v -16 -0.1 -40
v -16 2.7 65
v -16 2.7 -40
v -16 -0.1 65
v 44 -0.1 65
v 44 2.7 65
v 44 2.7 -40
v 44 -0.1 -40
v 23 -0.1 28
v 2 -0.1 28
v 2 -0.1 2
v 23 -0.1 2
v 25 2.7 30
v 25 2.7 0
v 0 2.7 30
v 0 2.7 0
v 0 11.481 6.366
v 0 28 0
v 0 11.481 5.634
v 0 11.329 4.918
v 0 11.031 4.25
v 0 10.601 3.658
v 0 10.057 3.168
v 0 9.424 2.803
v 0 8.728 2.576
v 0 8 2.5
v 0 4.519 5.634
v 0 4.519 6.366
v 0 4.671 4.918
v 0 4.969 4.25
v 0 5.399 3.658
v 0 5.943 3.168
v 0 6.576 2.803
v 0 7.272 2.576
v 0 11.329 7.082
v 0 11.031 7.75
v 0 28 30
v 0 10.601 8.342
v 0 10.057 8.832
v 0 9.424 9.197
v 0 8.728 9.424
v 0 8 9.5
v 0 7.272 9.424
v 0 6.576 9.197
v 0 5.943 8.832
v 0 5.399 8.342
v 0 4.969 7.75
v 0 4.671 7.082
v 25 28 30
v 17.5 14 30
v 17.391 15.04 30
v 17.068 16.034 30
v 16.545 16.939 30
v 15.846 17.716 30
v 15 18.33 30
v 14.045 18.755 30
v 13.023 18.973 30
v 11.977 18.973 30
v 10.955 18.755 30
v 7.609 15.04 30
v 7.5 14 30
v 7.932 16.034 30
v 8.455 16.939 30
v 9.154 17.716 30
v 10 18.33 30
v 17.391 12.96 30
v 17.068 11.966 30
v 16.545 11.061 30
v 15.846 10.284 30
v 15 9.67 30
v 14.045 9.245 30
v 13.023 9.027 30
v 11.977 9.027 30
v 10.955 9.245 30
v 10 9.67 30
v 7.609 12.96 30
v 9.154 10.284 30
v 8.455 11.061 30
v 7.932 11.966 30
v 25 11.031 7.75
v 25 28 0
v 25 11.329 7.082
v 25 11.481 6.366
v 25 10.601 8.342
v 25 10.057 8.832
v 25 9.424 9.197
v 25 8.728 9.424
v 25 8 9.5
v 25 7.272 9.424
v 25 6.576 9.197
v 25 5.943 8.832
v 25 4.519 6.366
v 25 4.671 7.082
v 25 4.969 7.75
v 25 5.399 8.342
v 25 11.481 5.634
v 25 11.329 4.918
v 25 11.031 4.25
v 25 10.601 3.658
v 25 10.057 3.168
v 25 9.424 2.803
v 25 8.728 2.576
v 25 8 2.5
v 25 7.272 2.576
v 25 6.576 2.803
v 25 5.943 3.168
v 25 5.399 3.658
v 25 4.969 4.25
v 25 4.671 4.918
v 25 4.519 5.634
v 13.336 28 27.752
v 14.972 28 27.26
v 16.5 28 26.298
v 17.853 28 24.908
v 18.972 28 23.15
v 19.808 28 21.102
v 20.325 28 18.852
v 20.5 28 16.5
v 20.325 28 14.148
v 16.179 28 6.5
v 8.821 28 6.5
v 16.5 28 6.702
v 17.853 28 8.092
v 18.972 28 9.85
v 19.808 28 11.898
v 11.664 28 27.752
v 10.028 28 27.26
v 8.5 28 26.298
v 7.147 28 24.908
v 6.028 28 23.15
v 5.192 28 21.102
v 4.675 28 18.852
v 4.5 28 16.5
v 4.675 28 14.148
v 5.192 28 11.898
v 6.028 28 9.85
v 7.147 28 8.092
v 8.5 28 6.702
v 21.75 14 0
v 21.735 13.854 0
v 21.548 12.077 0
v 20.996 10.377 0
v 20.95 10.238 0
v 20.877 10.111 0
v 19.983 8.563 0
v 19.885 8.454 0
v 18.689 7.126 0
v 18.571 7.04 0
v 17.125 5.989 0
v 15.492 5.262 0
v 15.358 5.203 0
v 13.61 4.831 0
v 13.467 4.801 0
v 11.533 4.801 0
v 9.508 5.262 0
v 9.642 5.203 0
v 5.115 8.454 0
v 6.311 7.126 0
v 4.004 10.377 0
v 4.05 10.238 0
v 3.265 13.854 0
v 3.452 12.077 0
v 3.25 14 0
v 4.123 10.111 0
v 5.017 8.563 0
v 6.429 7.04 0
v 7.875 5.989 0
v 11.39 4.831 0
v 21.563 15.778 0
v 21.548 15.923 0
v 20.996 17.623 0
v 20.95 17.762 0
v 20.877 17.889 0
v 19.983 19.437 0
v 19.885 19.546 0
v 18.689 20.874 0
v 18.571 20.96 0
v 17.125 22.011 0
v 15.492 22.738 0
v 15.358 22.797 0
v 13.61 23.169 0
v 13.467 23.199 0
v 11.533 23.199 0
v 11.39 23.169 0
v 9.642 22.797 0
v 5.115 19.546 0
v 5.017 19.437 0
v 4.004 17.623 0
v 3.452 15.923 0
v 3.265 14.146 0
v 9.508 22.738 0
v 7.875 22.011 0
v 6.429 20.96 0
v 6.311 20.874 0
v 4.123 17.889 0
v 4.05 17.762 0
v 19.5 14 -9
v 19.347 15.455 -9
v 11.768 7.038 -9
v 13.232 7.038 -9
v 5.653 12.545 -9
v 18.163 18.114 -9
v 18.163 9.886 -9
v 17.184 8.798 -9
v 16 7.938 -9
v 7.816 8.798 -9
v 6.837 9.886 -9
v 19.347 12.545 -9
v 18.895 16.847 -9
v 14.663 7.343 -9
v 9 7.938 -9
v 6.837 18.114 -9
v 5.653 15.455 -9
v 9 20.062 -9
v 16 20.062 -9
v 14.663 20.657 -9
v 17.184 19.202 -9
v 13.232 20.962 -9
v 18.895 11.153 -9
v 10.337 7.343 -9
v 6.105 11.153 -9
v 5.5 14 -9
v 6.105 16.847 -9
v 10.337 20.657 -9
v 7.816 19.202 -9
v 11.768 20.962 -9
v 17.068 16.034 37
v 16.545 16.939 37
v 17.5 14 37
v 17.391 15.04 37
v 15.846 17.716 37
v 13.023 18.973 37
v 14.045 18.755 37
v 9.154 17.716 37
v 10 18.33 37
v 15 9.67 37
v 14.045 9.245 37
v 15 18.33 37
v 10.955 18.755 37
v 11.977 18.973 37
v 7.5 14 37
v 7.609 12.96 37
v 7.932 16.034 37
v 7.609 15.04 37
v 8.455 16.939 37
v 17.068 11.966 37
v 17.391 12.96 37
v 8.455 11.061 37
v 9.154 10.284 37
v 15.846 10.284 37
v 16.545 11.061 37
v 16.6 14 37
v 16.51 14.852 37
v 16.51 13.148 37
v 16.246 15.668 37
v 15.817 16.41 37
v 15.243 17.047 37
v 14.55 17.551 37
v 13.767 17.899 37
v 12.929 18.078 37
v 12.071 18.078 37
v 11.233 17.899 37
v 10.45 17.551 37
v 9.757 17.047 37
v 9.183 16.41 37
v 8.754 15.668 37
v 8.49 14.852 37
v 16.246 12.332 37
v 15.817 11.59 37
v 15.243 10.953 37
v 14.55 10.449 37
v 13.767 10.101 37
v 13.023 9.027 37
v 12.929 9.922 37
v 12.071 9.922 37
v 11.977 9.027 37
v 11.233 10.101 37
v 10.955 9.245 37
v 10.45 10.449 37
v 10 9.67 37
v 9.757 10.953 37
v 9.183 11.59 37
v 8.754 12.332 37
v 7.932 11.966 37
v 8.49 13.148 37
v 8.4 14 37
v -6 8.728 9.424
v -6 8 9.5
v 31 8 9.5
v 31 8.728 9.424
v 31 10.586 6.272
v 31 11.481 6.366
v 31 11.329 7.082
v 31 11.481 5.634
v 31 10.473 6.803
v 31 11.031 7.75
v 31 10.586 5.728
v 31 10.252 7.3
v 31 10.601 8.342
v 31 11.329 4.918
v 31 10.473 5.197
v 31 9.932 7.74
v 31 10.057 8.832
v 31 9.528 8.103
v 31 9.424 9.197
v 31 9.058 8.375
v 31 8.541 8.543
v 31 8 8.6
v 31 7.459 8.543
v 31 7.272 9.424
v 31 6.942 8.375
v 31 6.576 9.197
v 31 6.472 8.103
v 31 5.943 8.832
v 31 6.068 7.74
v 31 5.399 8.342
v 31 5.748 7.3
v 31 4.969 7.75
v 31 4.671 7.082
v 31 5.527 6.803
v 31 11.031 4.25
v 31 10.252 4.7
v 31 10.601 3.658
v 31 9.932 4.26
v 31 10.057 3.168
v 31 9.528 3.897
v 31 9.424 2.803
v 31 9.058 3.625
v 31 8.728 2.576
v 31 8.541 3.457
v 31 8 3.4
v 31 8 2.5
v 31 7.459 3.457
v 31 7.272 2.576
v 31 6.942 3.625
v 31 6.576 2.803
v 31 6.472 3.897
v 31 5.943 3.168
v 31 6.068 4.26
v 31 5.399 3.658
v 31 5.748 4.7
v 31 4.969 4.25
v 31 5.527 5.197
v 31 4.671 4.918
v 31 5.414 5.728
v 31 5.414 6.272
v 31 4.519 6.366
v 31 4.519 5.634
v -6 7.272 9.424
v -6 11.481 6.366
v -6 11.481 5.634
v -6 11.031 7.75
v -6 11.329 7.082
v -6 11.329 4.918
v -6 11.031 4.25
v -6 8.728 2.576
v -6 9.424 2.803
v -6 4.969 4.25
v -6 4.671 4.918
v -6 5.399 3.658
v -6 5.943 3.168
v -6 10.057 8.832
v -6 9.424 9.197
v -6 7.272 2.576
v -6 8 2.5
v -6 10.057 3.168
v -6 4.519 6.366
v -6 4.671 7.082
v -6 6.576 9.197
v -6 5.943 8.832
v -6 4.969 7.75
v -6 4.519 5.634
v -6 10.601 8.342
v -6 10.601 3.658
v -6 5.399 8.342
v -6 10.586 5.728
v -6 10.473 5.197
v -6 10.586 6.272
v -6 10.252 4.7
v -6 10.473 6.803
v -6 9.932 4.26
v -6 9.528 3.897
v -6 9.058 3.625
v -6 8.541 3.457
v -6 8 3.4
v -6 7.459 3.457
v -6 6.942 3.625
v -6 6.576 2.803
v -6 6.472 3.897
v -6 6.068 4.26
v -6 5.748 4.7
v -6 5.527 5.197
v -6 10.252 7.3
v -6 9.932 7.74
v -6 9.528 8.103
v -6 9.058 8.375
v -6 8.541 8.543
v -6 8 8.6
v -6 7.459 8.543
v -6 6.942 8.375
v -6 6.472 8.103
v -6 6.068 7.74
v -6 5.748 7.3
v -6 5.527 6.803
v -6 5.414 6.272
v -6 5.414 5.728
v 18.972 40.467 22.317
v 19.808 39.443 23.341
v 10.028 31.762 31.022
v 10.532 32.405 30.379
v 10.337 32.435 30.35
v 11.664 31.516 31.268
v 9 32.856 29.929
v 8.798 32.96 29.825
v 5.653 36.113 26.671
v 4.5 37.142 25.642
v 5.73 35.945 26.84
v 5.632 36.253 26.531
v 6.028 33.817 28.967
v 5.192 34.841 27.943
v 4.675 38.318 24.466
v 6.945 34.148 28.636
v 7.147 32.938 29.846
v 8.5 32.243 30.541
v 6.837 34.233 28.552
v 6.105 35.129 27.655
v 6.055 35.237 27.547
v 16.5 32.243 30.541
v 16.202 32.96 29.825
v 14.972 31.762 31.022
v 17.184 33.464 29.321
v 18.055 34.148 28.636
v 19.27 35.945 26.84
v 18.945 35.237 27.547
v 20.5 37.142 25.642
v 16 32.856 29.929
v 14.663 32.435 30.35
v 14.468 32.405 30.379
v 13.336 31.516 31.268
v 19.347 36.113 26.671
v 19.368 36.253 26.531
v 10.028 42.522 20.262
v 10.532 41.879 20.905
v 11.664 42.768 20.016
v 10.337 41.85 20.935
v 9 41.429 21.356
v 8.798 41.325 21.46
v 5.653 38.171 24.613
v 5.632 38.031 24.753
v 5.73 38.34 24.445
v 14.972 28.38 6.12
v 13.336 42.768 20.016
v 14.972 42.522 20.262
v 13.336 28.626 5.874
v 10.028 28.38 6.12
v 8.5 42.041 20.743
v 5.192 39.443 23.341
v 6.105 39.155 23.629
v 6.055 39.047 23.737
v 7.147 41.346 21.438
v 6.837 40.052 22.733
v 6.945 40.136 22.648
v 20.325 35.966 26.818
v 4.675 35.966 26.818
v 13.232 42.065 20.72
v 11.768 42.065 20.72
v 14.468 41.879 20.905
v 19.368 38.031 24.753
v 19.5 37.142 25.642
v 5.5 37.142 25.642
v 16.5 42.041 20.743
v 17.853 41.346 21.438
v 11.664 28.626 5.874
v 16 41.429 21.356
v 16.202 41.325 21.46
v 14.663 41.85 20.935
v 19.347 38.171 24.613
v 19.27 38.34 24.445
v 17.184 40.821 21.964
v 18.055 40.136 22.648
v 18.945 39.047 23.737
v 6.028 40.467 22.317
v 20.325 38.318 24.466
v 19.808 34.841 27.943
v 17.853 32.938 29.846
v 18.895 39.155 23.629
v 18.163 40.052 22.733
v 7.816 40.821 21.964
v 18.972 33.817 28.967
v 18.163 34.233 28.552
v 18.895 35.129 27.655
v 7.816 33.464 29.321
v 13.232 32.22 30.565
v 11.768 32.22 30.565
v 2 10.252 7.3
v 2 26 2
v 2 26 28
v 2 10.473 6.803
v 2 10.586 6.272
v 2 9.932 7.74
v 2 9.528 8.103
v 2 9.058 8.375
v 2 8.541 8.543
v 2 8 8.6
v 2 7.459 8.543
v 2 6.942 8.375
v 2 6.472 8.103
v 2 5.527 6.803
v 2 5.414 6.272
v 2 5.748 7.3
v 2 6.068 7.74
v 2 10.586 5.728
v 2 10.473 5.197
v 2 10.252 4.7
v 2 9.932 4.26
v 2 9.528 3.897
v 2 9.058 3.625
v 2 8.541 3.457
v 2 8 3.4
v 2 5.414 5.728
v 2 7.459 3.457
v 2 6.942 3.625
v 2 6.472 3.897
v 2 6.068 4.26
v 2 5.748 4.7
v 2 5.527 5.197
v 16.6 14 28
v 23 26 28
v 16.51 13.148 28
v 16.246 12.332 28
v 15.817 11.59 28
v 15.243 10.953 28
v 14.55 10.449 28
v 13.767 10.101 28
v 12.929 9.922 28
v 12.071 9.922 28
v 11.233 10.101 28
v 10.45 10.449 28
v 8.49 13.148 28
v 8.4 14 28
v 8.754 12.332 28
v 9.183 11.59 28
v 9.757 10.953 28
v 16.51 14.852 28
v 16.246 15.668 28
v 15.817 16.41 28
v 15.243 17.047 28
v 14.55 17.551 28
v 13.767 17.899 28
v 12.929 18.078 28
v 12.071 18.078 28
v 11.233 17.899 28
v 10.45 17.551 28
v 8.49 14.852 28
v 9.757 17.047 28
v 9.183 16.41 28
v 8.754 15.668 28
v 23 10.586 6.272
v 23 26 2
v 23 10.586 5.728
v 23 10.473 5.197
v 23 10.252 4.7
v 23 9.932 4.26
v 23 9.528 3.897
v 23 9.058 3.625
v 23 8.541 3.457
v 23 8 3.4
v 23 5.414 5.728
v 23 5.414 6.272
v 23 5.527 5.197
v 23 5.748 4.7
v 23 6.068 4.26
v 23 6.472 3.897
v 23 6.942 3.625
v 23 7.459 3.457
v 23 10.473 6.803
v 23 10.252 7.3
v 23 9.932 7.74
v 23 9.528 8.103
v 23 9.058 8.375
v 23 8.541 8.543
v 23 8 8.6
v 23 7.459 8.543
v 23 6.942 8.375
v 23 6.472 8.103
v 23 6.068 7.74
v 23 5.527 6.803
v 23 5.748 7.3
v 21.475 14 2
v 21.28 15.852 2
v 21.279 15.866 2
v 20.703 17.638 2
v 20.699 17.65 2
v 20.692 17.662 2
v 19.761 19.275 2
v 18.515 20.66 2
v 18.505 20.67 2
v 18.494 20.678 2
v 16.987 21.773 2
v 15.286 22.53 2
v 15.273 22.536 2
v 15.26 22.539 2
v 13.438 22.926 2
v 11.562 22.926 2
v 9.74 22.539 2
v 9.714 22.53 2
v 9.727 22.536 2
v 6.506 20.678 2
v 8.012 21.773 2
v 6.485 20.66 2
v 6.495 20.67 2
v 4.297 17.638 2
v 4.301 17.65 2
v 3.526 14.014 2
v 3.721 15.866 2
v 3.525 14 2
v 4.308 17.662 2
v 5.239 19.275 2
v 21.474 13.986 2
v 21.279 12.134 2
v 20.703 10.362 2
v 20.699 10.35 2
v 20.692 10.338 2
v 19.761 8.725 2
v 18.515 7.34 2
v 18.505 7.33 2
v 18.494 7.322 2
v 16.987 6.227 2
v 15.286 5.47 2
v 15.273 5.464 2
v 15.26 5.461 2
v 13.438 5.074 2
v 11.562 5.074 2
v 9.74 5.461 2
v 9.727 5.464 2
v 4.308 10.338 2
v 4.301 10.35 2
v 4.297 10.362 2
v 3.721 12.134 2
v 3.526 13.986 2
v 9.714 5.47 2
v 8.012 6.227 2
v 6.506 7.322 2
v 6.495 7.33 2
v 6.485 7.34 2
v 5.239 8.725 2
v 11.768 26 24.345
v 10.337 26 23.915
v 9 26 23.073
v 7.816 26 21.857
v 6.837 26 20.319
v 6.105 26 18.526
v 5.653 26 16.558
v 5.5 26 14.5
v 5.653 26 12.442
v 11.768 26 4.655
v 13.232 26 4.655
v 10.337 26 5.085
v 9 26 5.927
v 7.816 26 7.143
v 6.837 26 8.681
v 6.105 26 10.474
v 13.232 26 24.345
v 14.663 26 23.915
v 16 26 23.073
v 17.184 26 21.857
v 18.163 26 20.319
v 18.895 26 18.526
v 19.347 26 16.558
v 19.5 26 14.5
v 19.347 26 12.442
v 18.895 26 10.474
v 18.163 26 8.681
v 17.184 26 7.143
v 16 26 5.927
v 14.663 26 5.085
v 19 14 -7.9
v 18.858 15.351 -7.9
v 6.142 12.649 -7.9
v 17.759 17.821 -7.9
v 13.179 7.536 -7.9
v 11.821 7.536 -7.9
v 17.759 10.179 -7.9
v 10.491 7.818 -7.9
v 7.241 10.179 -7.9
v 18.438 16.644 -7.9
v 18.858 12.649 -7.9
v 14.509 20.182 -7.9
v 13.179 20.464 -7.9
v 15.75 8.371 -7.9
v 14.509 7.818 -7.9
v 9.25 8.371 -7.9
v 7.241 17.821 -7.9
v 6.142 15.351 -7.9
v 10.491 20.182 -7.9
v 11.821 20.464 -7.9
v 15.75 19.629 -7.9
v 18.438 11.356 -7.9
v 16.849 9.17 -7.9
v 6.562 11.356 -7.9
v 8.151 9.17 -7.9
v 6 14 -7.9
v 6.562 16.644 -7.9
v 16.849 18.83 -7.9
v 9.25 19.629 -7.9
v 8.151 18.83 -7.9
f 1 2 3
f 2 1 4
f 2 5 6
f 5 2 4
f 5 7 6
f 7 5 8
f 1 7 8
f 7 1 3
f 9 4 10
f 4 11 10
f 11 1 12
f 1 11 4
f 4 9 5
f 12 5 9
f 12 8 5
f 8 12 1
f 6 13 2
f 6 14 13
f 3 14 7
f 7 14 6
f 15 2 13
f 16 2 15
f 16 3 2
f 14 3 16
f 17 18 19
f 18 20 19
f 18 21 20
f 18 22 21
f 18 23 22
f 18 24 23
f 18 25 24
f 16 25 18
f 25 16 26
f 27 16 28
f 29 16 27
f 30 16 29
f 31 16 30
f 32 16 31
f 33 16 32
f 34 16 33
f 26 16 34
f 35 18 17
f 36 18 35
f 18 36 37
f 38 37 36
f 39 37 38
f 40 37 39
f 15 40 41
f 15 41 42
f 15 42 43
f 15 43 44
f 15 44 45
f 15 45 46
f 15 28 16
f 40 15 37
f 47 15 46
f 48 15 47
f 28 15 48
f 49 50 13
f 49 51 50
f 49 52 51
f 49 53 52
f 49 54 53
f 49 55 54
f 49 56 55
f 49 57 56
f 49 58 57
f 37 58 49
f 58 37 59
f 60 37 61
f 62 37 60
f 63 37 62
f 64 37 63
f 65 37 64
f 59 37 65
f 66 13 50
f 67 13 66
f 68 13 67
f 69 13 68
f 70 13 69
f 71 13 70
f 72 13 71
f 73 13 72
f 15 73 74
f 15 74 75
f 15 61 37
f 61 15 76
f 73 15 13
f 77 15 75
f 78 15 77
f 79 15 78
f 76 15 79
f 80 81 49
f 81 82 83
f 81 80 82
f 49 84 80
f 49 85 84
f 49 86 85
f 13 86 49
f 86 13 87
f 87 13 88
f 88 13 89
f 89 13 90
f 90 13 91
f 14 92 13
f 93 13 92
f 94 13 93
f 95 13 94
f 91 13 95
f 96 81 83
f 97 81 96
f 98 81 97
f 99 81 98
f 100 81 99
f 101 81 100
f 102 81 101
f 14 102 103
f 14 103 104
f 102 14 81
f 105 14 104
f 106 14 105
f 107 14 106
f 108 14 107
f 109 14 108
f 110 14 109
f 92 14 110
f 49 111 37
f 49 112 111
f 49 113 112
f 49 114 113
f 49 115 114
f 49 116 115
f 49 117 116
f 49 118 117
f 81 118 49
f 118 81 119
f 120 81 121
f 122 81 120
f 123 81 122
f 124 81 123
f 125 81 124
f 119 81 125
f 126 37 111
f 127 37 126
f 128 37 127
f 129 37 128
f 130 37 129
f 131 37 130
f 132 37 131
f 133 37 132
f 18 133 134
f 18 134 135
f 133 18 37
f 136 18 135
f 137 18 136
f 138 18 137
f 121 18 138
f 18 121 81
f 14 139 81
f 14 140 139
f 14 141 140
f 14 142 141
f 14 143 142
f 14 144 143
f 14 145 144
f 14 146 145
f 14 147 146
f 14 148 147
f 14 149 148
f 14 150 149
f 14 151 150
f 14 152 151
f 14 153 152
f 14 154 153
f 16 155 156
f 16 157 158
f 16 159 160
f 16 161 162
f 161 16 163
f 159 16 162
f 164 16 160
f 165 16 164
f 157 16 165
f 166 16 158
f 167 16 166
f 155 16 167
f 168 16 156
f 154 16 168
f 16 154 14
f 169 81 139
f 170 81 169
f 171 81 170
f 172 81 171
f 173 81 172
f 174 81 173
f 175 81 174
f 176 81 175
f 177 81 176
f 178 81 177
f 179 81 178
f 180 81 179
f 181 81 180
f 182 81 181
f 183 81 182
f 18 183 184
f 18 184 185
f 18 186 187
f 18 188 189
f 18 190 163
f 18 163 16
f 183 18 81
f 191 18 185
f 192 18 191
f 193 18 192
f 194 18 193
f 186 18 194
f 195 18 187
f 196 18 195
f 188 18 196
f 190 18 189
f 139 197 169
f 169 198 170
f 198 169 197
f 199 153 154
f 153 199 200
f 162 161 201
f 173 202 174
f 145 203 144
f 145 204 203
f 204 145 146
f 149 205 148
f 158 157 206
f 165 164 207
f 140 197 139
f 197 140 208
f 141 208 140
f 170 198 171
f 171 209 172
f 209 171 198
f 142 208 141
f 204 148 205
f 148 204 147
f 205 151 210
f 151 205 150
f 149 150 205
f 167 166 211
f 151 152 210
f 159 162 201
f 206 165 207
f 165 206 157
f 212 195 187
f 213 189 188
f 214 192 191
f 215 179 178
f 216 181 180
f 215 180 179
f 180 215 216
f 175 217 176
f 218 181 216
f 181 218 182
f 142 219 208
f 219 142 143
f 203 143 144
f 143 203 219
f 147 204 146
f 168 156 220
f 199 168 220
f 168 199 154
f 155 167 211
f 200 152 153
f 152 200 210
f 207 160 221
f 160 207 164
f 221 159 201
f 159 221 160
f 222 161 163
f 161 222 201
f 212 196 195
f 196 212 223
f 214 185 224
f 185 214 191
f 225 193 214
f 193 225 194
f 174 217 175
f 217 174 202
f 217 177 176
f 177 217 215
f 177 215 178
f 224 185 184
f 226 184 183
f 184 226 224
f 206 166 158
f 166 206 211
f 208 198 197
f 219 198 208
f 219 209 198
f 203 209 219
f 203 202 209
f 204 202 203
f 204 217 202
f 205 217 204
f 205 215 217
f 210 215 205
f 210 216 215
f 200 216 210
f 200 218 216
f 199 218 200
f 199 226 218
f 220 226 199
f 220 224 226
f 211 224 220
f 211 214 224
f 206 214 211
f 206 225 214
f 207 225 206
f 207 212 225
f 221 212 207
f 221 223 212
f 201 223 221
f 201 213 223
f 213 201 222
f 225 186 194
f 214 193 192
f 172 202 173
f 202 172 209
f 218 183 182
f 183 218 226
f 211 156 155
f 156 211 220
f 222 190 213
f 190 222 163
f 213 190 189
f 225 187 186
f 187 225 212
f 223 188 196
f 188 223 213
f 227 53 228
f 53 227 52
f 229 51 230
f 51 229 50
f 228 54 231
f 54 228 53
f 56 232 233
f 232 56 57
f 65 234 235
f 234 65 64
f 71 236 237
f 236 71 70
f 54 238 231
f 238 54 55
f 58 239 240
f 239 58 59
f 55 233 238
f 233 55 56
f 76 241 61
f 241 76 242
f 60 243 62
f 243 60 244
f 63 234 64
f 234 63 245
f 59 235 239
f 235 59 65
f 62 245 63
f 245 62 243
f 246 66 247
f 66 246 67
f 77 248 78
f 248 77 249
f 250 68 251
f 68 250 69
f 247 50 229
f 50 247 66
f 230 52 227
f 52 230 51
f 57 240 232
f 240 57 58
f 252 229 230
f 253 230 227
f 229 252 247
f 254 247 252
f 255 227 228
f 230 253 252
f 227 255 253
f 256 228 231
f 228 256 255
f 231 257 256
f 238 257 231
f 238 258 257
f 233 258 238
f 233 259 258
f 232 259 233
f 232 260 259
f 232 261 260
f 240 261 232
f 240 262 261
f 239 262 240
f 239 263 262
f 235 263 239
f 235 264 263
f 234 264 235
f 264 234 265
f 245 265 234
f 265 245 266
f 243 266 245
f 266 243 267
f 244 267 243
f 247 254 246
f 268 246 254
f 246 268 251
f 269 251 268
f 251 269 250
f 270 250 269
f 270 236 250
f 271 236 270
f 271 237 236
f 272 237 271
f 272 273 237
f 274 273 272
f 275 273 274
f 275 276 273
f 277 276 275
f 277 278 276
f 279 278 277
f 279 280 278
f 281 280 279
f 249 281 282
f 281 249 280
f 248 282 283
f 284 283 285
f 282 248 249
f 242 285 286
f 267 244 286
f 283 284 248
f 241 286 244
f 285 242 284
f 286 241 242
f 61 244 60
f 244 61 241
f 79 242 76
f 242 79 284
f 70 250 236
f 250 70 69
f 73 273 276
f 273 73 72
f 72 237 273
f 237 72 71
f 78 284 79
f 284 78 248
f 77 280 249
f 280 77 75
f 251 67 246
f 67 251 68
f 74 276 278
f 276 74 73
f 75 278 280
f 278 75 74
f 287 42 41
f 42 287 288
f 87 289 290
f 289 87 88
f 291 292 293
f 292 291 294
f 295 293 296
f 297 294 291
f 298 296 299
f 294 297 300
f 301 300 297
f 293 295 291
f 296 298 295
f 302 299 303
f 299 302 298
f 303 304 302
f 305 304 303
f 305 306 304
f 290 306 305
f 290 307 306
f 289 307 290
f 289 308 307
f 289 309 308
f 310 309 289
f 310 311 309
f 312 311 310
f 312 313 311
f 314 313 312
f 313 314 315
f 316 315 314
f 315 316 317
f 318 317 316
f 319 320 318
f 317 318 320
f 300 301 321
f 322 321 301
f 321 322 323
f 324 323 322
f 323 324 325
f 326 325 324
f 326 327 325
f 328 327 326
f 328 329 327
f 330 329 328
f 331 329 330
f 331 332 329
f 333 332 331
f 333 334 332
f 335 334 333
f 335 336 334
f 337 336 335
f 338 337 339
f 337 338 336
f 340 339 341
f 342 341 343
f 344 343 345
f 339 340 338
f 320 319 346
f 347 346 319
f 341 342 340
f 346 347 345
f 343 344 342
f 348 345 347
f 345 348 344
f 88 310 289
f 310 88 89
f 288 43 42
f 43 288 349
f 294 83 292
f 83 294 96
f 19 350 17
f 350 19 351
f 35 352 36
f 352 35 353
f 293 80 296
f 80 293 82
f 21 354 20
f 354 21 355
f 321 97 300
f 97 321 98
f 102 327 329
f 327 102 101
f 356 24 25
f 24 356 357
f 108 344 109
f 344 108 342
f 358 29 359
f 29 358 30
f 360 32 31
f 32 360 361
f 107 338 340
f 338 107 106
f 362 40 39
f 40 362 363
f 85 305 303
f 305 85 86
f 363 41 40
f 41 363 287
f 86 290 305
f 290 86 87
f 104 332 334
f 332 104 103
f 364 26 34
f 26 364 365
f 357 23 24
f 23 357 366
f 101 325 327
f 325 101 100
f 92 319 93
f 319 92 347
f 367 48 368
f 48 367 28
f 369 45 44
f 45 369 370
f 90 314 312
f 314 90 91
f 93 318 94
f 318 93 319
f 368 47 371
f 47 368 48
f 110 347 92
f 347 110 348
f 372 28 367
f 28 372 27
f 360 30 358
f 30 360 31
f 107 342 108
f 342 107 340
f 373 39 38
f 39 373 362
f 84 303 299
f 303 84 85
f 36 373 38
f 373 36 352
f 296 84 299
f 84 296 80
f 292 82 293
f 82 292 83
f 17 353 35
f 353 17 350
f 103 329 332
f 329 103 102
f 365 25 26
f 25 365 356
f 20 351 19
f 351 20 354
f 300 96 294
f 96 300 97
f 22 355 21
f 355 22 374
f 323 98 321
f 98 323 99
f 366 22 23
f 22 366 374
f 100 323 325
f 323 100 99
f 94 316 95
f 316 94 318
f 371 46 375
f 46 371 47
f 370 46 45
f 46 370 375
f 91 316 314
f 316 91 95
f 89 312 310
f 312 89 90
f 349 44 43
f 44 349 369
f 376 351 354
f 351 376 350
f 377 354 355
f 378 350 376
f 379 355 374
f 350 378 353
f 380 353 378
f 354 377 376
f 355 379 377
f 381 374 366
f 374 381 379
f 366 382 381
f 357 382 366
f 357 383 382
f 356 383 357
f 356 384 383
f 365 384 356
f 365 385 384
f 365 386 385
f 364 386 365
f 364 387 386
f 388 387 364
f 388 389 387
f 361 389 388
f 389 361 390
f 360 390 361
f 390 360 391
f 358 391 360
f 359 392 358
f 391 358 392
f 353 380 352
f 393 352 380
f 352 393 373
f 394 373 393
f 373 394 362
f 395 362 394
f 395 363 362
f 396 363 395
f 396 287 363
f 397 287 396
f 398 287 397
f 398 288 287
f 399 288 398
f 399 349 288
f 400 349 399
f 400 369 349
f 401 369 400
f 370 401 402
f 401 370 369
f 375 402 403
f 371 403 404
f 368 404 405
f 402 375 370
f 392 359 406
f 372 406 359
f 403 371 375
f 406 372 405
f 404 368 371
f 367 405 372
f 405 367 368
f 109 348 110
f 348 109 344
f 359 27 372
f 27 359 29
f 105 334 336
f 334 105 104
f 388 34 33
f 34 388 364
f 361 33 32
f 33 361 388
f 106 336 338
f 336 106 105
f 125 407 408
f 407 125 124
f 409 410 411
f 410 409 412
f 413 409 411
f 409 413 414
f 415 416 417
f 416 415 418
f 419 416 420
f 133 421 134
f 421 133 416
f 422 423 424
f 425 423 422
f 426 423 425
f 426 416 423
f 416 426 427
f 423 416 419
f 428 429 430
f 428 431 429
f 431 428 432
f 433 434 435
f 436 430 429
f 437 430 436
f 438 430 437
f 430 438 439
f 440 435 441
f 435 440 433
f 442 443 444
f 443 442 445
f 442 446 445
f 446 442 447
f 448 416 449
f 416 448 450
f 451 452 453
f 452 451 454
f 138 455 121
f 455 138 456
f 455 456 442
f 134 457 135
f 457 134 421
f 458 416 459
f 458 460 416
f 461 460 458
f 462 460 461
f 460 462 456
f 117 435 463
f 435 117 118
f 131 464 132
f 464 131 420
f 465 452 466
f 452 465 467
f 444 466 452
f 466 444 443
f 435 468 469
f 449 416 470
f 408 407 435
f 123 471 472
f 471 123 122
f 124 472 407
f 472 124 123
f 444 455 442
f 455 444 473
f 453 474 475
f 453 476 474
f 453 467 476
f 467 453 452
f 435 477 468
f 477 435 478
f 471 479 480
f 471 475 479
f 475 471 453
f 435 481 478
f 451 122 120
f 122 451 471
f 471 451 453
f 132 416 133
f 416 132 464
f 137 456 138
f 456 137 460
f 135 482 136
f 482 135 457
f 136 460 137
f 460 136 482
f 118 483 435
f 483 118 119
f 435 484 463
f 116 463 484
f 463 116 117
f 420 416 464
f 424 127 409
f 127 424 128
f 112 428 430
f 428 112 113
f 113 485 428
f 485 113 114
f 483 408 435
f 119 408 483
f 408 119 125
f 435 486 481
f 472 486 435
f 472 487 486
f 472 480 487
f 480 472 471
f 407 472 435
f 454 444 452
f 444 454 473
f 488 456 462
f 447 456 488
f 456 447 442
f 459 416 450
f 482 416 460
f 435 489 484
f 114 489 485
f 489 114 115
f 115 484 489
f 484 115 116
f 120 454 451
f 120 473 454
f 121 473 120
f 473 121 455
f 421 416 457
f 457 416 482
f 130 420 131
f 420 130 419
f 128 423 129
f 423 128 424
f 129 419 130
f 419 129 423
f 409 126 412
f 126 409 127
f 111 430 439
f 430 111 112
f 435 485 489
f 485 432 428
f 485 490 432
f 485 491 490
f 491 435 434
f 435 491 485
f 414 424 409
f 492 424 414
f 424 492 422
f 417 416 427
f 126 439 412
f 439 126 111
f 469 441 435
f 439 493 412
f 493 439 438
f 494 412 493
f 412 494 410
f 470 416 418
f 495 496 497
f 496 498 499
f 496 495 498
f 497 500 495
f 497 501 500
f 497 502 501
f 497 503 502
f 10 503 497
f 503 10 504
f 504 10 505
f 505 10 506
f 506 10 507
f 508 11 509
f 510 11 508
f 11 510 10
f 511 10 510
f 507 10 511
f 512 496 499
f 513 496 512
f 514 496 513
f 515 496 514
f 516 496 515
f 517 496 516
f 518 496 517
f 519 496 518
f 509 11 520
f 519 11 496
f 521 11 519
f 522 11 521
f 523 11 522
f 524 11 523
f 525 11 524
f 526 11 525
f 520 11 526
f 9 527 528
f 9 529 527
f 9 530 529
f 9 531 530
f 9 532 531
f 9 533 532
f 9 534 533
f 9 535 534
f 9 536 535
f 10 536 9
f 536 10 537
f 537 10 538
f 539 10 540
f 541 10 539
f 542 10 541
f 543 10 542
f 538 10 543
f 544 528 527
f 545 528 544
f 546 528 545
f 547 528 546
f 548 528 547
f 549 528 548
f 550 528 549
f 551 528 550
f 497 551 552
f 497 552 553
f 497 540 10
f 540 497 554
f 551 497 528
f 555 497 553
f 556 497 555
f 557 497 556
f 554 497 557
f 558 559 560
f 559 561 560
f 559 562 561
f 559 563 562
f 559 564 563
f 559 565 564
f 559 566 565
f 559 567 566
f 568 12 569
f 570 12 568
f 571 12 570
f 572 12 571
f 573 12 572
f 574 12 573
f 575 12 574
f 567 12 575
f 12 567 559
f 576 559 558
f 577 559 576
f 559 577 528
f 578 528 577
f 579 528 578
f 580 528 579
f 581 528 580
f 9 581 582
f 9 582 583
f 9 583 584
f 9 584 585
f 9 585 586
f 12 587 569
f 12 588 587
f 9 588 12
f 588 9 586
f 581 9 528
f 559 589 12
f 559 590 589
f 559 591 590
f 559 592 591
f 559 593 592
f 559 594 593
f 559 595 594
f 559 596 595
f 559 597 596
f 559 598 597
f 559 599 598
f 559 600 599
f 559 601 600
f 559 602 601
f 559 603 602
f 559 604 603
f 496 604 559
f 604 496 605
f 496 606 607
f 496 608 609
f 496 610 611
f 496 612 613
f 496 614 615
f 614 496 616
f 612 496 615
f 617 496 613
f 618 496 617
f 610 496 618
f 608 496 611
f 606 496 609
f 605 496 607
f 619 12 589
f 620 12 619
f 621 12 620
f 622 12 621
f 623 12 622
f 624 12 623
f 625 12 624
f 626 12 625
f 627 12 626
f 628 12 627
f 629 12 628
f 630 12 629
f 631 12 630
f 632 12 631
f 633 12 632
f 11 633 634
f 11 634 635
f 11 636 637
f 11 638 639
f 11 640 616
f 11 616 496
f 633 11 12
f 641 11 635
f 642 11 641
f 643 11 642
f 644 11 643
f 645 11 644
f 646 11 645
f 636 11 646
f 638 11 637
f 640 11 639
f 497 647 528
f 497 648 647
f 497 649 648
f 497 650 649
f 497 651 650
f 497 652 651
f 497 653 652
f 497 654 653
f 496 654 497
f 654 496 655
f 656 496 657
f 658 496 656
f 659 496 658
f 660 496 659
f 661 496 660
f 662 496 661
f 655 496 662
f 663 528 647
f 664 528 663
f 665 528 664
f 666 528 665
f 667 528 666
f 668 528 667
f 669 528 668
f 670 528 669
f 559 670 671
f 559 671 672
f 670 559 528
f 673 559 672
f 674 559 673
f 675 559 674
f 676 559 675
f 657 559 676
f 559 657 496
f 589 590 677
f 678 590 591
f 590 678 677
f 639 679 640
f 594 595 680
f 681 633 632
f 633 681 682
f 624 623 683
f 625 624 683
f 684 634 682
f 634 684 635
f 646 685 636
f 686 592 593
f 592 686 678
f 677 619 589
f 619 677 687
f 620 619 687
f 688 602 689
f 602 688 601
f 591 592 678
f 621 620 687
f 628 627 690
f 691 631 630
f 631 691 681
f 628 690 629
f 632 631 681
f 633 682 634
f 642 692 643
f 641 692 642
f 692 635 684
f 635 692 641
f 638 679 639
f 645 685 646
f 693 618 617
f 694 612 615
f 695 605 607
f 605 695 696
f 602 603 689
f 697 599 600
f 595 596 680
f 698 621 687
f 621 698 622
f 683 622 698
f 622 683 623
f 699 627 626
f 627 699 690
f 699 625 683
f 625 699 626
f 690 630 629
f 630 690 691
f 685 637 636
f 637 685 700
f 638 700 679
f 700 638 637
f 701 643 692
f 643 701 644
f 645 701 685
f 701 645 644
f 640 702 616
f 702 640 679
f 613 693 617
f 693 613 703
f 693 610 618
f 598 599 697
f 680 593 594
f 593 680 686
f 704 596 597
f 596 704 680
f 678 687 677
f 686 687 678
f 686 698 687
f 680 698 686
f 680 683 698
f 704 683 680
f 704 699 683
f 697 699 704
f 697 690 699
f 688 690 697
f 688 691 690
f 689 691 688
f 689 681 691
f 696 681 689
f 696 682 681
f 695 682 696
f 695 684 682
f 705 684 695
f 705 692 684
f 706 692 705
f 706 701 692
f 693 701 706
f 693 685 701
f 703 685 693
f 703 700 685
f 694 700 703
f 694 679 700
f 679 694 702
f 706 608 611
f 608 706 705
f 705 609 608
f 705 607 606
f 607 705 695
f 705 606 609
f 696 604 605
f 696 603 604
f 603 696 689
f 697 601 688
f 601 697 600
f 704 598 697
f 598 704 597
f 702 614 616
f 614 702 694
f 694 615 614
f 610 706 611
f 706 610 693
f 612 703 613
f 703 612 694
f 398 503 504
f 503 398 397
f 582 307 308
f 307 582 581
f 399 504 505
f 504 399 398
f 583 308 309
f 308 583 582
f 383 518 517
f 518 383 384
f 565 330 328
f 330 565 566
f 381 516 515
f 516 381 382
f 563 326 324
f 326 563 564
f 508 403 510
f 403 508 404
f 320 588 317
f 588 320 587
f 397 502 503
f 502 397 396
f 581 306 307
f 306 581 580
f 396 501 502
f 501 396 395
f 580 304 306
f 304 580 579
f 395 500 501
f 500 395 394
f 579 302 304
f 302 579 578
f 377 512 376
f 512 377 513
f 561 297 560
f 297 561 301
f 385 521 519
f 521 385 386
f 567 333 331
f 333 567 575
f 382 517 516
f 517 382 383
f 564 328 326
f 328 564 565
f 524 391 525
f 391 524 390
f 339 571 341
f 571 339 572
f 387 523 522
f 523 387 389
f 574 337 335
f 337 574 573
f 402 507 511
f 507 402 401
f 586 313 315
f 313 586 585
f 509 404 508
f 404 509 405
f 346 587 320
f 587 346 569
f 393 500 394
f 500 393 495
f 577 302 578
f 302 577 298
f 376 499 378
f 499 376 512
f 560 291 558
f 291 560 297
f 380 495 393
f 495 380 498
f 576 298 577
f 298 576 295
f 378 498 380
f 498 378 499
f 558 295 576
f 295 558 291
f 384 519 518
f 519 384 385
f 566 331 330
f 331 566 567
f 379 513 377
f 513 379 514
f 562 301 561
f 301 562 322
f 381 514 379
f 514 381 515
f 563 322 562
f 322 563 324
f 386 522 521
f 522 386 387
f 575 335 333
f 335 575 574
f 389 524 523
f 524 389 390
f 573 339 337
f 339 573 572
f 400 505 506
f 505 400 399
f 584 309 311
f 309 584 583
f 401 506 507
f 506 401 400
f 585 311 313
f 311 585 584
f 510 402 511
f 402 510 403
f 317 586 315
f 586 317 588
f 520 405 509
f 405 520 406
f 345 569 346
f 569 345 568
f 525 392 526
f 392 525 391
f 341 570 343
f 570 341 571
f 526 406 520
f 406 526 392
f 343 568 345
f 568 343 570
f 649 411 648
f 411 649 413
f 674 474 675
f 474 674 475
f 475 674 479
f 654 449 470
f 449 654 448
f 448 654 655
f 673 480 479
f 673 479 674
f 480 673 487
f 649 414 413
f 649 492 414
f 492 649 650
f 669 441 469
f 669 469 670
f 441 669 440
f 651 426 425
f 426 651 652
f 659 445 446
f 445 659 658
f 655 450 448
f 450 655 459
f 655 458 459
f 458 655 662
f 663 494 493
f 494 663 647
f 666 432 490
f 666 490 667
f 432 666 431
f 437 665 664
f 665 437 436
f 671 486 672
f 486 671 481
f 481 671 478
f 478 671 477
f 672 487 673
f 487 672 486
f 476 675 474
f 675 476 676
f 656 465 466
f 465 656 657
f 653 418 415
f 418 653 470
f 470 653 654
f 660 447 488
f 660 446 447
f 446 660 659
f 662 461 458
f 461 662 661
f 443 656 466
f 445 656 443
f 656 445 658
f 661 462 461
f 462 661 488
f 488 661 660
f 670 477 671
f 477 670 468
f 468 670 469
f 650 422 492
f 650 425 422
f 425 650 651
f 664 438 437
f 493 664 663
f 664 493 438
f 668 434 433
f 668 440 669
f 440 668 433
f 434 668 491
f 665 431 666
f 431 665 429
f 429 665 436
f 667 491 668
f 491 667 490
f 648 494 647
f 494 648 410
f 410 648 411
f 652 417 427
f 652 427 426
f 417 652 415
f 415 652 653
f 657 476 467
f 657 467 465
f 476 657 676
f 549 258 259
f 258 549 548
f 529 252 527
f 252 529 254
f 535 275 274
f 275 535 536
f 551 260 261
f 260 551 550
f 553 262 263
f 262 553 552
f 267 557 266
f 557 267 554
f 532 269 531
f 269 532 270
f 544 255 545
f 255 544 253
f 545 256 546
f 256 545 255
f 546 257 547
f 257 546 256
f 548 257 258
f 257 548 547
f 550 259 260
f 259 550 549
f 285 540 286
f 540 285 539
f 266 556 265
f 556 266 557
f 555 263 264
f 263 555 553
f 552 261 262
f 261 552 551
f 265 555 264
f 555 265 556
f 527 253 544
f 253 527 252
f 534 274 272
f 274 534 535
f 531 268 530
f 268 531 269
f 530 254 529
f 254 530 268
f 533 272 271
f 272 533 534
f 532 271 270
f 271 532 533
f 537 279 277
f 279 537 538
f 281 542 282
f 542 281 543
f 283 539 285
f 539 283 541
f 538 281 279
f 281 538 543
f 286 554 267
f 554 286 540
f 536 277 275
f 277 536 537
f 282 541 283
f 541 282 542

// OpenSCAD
// file: ring.scad
// A ring
// An example whose folder starts with a digit, so its slug needs a prefix.
rotate_extrude() translate([8, 0]) circle(d = 3);
// main file
///////////////////////////////////////////
// Design for a magazine entry to be used//
// in the behaviour box                  //
// Andre Maia Chagas - Cansu Demirbatir  //
// 16082021                              //
///////////////////////////////////////////

// all dimensions in mm.

//needs the ring.scad file (saved on the same folder)
use <ring.scad>

//// variables /////////////

//magazine LED
magledD = 8; // magazine LED diameter

//back plate dimensions 
//(the plate that slides on the metal railings)
backpanelx = 52.5*2;
backpanely = 60;
backpanelz = 2.8;

supportw=5;

//dimensions for the headport 

headportx = 25;
headporty = 28;
headportz = 30;

//wall thickness
headportwall = 2;

//infrared led dimensions
irledd = 5;
irledh = 6;

//pellet dispenser tube
pelletD = 14;

/* change this depending on the printer and printer settings
   it is a "tolerance" variable, so holes and fittings can be 
   adjusted.
*/
tol = 0.1;

$fn=30;


//backpanel
difference(){



union(){
    
    translate([-(backpanely-headporty)/2,-0.1,(-backpanelx+headportx)/2]){
cube([backpanely,backpanelz,backpanelx]);
}
cube([headportx,headporty,headportz]);


//well
translate([headportx/2,headporty/2,-(headporty-10)/2]){
cylinder(d1=headporty/2,d2=headporty/2+5,h=10);
}//end translate

//magazine led
translate([headportx/2,headporty/2,headportz]){
cylinder(d=magledD+headportwall,h=7);
}//end translate



//IR detector holes
translate([headportx+irledh,8,6]){
rotate([0,-90,0]){
cylinder(d=irledd+headportwall,h=headportx+irledh*2);
}//end rotate
}//end translate

//pellet shute
translate([headportx/2,headporty-2.5*headportwall,headportz/4+4]){
rotate([-45,0,0]){
cylinder(d=pelletD+headportwall,h=20);
}//end rotate
}//end translate


}//end union



//negative
union(){
//central hole
translate([headportwall,headportwall-5,headportwall]){
cube([headportx-headportwall*2,headporty-headportwall*2+5,headportz-headportwall*2]);
}//end translate
//well
translate([headportx/2,headporty/2,-(headporty-10)/2+1.1]){
cylinder(d1=headporty/2-1,d2=headporty/2+5-1,h=10);
}
//ir led holes
translate([headportx+irledh+1,8,6]){
rotate([0,-90,0]){
cylinder(d=irledd+2*tol,h=headportx+irledh*2+2);
}//end rotate
}//end translate

//pellet shute
translate([headportx/2,headporty-2.5*headportwall-2,headportz/4+2]){
rotate([-45,0,0]){
cylinder(d=pelletD,h=30);
}//end rotate
}//end translate


//magazine led
translate([headportx/2,headporty/2,headportz-headportwall-2]){
cylinder(d=magledD+2*tol,h=20);
}//end translate
}//end union
}//end differnece
//headentry
